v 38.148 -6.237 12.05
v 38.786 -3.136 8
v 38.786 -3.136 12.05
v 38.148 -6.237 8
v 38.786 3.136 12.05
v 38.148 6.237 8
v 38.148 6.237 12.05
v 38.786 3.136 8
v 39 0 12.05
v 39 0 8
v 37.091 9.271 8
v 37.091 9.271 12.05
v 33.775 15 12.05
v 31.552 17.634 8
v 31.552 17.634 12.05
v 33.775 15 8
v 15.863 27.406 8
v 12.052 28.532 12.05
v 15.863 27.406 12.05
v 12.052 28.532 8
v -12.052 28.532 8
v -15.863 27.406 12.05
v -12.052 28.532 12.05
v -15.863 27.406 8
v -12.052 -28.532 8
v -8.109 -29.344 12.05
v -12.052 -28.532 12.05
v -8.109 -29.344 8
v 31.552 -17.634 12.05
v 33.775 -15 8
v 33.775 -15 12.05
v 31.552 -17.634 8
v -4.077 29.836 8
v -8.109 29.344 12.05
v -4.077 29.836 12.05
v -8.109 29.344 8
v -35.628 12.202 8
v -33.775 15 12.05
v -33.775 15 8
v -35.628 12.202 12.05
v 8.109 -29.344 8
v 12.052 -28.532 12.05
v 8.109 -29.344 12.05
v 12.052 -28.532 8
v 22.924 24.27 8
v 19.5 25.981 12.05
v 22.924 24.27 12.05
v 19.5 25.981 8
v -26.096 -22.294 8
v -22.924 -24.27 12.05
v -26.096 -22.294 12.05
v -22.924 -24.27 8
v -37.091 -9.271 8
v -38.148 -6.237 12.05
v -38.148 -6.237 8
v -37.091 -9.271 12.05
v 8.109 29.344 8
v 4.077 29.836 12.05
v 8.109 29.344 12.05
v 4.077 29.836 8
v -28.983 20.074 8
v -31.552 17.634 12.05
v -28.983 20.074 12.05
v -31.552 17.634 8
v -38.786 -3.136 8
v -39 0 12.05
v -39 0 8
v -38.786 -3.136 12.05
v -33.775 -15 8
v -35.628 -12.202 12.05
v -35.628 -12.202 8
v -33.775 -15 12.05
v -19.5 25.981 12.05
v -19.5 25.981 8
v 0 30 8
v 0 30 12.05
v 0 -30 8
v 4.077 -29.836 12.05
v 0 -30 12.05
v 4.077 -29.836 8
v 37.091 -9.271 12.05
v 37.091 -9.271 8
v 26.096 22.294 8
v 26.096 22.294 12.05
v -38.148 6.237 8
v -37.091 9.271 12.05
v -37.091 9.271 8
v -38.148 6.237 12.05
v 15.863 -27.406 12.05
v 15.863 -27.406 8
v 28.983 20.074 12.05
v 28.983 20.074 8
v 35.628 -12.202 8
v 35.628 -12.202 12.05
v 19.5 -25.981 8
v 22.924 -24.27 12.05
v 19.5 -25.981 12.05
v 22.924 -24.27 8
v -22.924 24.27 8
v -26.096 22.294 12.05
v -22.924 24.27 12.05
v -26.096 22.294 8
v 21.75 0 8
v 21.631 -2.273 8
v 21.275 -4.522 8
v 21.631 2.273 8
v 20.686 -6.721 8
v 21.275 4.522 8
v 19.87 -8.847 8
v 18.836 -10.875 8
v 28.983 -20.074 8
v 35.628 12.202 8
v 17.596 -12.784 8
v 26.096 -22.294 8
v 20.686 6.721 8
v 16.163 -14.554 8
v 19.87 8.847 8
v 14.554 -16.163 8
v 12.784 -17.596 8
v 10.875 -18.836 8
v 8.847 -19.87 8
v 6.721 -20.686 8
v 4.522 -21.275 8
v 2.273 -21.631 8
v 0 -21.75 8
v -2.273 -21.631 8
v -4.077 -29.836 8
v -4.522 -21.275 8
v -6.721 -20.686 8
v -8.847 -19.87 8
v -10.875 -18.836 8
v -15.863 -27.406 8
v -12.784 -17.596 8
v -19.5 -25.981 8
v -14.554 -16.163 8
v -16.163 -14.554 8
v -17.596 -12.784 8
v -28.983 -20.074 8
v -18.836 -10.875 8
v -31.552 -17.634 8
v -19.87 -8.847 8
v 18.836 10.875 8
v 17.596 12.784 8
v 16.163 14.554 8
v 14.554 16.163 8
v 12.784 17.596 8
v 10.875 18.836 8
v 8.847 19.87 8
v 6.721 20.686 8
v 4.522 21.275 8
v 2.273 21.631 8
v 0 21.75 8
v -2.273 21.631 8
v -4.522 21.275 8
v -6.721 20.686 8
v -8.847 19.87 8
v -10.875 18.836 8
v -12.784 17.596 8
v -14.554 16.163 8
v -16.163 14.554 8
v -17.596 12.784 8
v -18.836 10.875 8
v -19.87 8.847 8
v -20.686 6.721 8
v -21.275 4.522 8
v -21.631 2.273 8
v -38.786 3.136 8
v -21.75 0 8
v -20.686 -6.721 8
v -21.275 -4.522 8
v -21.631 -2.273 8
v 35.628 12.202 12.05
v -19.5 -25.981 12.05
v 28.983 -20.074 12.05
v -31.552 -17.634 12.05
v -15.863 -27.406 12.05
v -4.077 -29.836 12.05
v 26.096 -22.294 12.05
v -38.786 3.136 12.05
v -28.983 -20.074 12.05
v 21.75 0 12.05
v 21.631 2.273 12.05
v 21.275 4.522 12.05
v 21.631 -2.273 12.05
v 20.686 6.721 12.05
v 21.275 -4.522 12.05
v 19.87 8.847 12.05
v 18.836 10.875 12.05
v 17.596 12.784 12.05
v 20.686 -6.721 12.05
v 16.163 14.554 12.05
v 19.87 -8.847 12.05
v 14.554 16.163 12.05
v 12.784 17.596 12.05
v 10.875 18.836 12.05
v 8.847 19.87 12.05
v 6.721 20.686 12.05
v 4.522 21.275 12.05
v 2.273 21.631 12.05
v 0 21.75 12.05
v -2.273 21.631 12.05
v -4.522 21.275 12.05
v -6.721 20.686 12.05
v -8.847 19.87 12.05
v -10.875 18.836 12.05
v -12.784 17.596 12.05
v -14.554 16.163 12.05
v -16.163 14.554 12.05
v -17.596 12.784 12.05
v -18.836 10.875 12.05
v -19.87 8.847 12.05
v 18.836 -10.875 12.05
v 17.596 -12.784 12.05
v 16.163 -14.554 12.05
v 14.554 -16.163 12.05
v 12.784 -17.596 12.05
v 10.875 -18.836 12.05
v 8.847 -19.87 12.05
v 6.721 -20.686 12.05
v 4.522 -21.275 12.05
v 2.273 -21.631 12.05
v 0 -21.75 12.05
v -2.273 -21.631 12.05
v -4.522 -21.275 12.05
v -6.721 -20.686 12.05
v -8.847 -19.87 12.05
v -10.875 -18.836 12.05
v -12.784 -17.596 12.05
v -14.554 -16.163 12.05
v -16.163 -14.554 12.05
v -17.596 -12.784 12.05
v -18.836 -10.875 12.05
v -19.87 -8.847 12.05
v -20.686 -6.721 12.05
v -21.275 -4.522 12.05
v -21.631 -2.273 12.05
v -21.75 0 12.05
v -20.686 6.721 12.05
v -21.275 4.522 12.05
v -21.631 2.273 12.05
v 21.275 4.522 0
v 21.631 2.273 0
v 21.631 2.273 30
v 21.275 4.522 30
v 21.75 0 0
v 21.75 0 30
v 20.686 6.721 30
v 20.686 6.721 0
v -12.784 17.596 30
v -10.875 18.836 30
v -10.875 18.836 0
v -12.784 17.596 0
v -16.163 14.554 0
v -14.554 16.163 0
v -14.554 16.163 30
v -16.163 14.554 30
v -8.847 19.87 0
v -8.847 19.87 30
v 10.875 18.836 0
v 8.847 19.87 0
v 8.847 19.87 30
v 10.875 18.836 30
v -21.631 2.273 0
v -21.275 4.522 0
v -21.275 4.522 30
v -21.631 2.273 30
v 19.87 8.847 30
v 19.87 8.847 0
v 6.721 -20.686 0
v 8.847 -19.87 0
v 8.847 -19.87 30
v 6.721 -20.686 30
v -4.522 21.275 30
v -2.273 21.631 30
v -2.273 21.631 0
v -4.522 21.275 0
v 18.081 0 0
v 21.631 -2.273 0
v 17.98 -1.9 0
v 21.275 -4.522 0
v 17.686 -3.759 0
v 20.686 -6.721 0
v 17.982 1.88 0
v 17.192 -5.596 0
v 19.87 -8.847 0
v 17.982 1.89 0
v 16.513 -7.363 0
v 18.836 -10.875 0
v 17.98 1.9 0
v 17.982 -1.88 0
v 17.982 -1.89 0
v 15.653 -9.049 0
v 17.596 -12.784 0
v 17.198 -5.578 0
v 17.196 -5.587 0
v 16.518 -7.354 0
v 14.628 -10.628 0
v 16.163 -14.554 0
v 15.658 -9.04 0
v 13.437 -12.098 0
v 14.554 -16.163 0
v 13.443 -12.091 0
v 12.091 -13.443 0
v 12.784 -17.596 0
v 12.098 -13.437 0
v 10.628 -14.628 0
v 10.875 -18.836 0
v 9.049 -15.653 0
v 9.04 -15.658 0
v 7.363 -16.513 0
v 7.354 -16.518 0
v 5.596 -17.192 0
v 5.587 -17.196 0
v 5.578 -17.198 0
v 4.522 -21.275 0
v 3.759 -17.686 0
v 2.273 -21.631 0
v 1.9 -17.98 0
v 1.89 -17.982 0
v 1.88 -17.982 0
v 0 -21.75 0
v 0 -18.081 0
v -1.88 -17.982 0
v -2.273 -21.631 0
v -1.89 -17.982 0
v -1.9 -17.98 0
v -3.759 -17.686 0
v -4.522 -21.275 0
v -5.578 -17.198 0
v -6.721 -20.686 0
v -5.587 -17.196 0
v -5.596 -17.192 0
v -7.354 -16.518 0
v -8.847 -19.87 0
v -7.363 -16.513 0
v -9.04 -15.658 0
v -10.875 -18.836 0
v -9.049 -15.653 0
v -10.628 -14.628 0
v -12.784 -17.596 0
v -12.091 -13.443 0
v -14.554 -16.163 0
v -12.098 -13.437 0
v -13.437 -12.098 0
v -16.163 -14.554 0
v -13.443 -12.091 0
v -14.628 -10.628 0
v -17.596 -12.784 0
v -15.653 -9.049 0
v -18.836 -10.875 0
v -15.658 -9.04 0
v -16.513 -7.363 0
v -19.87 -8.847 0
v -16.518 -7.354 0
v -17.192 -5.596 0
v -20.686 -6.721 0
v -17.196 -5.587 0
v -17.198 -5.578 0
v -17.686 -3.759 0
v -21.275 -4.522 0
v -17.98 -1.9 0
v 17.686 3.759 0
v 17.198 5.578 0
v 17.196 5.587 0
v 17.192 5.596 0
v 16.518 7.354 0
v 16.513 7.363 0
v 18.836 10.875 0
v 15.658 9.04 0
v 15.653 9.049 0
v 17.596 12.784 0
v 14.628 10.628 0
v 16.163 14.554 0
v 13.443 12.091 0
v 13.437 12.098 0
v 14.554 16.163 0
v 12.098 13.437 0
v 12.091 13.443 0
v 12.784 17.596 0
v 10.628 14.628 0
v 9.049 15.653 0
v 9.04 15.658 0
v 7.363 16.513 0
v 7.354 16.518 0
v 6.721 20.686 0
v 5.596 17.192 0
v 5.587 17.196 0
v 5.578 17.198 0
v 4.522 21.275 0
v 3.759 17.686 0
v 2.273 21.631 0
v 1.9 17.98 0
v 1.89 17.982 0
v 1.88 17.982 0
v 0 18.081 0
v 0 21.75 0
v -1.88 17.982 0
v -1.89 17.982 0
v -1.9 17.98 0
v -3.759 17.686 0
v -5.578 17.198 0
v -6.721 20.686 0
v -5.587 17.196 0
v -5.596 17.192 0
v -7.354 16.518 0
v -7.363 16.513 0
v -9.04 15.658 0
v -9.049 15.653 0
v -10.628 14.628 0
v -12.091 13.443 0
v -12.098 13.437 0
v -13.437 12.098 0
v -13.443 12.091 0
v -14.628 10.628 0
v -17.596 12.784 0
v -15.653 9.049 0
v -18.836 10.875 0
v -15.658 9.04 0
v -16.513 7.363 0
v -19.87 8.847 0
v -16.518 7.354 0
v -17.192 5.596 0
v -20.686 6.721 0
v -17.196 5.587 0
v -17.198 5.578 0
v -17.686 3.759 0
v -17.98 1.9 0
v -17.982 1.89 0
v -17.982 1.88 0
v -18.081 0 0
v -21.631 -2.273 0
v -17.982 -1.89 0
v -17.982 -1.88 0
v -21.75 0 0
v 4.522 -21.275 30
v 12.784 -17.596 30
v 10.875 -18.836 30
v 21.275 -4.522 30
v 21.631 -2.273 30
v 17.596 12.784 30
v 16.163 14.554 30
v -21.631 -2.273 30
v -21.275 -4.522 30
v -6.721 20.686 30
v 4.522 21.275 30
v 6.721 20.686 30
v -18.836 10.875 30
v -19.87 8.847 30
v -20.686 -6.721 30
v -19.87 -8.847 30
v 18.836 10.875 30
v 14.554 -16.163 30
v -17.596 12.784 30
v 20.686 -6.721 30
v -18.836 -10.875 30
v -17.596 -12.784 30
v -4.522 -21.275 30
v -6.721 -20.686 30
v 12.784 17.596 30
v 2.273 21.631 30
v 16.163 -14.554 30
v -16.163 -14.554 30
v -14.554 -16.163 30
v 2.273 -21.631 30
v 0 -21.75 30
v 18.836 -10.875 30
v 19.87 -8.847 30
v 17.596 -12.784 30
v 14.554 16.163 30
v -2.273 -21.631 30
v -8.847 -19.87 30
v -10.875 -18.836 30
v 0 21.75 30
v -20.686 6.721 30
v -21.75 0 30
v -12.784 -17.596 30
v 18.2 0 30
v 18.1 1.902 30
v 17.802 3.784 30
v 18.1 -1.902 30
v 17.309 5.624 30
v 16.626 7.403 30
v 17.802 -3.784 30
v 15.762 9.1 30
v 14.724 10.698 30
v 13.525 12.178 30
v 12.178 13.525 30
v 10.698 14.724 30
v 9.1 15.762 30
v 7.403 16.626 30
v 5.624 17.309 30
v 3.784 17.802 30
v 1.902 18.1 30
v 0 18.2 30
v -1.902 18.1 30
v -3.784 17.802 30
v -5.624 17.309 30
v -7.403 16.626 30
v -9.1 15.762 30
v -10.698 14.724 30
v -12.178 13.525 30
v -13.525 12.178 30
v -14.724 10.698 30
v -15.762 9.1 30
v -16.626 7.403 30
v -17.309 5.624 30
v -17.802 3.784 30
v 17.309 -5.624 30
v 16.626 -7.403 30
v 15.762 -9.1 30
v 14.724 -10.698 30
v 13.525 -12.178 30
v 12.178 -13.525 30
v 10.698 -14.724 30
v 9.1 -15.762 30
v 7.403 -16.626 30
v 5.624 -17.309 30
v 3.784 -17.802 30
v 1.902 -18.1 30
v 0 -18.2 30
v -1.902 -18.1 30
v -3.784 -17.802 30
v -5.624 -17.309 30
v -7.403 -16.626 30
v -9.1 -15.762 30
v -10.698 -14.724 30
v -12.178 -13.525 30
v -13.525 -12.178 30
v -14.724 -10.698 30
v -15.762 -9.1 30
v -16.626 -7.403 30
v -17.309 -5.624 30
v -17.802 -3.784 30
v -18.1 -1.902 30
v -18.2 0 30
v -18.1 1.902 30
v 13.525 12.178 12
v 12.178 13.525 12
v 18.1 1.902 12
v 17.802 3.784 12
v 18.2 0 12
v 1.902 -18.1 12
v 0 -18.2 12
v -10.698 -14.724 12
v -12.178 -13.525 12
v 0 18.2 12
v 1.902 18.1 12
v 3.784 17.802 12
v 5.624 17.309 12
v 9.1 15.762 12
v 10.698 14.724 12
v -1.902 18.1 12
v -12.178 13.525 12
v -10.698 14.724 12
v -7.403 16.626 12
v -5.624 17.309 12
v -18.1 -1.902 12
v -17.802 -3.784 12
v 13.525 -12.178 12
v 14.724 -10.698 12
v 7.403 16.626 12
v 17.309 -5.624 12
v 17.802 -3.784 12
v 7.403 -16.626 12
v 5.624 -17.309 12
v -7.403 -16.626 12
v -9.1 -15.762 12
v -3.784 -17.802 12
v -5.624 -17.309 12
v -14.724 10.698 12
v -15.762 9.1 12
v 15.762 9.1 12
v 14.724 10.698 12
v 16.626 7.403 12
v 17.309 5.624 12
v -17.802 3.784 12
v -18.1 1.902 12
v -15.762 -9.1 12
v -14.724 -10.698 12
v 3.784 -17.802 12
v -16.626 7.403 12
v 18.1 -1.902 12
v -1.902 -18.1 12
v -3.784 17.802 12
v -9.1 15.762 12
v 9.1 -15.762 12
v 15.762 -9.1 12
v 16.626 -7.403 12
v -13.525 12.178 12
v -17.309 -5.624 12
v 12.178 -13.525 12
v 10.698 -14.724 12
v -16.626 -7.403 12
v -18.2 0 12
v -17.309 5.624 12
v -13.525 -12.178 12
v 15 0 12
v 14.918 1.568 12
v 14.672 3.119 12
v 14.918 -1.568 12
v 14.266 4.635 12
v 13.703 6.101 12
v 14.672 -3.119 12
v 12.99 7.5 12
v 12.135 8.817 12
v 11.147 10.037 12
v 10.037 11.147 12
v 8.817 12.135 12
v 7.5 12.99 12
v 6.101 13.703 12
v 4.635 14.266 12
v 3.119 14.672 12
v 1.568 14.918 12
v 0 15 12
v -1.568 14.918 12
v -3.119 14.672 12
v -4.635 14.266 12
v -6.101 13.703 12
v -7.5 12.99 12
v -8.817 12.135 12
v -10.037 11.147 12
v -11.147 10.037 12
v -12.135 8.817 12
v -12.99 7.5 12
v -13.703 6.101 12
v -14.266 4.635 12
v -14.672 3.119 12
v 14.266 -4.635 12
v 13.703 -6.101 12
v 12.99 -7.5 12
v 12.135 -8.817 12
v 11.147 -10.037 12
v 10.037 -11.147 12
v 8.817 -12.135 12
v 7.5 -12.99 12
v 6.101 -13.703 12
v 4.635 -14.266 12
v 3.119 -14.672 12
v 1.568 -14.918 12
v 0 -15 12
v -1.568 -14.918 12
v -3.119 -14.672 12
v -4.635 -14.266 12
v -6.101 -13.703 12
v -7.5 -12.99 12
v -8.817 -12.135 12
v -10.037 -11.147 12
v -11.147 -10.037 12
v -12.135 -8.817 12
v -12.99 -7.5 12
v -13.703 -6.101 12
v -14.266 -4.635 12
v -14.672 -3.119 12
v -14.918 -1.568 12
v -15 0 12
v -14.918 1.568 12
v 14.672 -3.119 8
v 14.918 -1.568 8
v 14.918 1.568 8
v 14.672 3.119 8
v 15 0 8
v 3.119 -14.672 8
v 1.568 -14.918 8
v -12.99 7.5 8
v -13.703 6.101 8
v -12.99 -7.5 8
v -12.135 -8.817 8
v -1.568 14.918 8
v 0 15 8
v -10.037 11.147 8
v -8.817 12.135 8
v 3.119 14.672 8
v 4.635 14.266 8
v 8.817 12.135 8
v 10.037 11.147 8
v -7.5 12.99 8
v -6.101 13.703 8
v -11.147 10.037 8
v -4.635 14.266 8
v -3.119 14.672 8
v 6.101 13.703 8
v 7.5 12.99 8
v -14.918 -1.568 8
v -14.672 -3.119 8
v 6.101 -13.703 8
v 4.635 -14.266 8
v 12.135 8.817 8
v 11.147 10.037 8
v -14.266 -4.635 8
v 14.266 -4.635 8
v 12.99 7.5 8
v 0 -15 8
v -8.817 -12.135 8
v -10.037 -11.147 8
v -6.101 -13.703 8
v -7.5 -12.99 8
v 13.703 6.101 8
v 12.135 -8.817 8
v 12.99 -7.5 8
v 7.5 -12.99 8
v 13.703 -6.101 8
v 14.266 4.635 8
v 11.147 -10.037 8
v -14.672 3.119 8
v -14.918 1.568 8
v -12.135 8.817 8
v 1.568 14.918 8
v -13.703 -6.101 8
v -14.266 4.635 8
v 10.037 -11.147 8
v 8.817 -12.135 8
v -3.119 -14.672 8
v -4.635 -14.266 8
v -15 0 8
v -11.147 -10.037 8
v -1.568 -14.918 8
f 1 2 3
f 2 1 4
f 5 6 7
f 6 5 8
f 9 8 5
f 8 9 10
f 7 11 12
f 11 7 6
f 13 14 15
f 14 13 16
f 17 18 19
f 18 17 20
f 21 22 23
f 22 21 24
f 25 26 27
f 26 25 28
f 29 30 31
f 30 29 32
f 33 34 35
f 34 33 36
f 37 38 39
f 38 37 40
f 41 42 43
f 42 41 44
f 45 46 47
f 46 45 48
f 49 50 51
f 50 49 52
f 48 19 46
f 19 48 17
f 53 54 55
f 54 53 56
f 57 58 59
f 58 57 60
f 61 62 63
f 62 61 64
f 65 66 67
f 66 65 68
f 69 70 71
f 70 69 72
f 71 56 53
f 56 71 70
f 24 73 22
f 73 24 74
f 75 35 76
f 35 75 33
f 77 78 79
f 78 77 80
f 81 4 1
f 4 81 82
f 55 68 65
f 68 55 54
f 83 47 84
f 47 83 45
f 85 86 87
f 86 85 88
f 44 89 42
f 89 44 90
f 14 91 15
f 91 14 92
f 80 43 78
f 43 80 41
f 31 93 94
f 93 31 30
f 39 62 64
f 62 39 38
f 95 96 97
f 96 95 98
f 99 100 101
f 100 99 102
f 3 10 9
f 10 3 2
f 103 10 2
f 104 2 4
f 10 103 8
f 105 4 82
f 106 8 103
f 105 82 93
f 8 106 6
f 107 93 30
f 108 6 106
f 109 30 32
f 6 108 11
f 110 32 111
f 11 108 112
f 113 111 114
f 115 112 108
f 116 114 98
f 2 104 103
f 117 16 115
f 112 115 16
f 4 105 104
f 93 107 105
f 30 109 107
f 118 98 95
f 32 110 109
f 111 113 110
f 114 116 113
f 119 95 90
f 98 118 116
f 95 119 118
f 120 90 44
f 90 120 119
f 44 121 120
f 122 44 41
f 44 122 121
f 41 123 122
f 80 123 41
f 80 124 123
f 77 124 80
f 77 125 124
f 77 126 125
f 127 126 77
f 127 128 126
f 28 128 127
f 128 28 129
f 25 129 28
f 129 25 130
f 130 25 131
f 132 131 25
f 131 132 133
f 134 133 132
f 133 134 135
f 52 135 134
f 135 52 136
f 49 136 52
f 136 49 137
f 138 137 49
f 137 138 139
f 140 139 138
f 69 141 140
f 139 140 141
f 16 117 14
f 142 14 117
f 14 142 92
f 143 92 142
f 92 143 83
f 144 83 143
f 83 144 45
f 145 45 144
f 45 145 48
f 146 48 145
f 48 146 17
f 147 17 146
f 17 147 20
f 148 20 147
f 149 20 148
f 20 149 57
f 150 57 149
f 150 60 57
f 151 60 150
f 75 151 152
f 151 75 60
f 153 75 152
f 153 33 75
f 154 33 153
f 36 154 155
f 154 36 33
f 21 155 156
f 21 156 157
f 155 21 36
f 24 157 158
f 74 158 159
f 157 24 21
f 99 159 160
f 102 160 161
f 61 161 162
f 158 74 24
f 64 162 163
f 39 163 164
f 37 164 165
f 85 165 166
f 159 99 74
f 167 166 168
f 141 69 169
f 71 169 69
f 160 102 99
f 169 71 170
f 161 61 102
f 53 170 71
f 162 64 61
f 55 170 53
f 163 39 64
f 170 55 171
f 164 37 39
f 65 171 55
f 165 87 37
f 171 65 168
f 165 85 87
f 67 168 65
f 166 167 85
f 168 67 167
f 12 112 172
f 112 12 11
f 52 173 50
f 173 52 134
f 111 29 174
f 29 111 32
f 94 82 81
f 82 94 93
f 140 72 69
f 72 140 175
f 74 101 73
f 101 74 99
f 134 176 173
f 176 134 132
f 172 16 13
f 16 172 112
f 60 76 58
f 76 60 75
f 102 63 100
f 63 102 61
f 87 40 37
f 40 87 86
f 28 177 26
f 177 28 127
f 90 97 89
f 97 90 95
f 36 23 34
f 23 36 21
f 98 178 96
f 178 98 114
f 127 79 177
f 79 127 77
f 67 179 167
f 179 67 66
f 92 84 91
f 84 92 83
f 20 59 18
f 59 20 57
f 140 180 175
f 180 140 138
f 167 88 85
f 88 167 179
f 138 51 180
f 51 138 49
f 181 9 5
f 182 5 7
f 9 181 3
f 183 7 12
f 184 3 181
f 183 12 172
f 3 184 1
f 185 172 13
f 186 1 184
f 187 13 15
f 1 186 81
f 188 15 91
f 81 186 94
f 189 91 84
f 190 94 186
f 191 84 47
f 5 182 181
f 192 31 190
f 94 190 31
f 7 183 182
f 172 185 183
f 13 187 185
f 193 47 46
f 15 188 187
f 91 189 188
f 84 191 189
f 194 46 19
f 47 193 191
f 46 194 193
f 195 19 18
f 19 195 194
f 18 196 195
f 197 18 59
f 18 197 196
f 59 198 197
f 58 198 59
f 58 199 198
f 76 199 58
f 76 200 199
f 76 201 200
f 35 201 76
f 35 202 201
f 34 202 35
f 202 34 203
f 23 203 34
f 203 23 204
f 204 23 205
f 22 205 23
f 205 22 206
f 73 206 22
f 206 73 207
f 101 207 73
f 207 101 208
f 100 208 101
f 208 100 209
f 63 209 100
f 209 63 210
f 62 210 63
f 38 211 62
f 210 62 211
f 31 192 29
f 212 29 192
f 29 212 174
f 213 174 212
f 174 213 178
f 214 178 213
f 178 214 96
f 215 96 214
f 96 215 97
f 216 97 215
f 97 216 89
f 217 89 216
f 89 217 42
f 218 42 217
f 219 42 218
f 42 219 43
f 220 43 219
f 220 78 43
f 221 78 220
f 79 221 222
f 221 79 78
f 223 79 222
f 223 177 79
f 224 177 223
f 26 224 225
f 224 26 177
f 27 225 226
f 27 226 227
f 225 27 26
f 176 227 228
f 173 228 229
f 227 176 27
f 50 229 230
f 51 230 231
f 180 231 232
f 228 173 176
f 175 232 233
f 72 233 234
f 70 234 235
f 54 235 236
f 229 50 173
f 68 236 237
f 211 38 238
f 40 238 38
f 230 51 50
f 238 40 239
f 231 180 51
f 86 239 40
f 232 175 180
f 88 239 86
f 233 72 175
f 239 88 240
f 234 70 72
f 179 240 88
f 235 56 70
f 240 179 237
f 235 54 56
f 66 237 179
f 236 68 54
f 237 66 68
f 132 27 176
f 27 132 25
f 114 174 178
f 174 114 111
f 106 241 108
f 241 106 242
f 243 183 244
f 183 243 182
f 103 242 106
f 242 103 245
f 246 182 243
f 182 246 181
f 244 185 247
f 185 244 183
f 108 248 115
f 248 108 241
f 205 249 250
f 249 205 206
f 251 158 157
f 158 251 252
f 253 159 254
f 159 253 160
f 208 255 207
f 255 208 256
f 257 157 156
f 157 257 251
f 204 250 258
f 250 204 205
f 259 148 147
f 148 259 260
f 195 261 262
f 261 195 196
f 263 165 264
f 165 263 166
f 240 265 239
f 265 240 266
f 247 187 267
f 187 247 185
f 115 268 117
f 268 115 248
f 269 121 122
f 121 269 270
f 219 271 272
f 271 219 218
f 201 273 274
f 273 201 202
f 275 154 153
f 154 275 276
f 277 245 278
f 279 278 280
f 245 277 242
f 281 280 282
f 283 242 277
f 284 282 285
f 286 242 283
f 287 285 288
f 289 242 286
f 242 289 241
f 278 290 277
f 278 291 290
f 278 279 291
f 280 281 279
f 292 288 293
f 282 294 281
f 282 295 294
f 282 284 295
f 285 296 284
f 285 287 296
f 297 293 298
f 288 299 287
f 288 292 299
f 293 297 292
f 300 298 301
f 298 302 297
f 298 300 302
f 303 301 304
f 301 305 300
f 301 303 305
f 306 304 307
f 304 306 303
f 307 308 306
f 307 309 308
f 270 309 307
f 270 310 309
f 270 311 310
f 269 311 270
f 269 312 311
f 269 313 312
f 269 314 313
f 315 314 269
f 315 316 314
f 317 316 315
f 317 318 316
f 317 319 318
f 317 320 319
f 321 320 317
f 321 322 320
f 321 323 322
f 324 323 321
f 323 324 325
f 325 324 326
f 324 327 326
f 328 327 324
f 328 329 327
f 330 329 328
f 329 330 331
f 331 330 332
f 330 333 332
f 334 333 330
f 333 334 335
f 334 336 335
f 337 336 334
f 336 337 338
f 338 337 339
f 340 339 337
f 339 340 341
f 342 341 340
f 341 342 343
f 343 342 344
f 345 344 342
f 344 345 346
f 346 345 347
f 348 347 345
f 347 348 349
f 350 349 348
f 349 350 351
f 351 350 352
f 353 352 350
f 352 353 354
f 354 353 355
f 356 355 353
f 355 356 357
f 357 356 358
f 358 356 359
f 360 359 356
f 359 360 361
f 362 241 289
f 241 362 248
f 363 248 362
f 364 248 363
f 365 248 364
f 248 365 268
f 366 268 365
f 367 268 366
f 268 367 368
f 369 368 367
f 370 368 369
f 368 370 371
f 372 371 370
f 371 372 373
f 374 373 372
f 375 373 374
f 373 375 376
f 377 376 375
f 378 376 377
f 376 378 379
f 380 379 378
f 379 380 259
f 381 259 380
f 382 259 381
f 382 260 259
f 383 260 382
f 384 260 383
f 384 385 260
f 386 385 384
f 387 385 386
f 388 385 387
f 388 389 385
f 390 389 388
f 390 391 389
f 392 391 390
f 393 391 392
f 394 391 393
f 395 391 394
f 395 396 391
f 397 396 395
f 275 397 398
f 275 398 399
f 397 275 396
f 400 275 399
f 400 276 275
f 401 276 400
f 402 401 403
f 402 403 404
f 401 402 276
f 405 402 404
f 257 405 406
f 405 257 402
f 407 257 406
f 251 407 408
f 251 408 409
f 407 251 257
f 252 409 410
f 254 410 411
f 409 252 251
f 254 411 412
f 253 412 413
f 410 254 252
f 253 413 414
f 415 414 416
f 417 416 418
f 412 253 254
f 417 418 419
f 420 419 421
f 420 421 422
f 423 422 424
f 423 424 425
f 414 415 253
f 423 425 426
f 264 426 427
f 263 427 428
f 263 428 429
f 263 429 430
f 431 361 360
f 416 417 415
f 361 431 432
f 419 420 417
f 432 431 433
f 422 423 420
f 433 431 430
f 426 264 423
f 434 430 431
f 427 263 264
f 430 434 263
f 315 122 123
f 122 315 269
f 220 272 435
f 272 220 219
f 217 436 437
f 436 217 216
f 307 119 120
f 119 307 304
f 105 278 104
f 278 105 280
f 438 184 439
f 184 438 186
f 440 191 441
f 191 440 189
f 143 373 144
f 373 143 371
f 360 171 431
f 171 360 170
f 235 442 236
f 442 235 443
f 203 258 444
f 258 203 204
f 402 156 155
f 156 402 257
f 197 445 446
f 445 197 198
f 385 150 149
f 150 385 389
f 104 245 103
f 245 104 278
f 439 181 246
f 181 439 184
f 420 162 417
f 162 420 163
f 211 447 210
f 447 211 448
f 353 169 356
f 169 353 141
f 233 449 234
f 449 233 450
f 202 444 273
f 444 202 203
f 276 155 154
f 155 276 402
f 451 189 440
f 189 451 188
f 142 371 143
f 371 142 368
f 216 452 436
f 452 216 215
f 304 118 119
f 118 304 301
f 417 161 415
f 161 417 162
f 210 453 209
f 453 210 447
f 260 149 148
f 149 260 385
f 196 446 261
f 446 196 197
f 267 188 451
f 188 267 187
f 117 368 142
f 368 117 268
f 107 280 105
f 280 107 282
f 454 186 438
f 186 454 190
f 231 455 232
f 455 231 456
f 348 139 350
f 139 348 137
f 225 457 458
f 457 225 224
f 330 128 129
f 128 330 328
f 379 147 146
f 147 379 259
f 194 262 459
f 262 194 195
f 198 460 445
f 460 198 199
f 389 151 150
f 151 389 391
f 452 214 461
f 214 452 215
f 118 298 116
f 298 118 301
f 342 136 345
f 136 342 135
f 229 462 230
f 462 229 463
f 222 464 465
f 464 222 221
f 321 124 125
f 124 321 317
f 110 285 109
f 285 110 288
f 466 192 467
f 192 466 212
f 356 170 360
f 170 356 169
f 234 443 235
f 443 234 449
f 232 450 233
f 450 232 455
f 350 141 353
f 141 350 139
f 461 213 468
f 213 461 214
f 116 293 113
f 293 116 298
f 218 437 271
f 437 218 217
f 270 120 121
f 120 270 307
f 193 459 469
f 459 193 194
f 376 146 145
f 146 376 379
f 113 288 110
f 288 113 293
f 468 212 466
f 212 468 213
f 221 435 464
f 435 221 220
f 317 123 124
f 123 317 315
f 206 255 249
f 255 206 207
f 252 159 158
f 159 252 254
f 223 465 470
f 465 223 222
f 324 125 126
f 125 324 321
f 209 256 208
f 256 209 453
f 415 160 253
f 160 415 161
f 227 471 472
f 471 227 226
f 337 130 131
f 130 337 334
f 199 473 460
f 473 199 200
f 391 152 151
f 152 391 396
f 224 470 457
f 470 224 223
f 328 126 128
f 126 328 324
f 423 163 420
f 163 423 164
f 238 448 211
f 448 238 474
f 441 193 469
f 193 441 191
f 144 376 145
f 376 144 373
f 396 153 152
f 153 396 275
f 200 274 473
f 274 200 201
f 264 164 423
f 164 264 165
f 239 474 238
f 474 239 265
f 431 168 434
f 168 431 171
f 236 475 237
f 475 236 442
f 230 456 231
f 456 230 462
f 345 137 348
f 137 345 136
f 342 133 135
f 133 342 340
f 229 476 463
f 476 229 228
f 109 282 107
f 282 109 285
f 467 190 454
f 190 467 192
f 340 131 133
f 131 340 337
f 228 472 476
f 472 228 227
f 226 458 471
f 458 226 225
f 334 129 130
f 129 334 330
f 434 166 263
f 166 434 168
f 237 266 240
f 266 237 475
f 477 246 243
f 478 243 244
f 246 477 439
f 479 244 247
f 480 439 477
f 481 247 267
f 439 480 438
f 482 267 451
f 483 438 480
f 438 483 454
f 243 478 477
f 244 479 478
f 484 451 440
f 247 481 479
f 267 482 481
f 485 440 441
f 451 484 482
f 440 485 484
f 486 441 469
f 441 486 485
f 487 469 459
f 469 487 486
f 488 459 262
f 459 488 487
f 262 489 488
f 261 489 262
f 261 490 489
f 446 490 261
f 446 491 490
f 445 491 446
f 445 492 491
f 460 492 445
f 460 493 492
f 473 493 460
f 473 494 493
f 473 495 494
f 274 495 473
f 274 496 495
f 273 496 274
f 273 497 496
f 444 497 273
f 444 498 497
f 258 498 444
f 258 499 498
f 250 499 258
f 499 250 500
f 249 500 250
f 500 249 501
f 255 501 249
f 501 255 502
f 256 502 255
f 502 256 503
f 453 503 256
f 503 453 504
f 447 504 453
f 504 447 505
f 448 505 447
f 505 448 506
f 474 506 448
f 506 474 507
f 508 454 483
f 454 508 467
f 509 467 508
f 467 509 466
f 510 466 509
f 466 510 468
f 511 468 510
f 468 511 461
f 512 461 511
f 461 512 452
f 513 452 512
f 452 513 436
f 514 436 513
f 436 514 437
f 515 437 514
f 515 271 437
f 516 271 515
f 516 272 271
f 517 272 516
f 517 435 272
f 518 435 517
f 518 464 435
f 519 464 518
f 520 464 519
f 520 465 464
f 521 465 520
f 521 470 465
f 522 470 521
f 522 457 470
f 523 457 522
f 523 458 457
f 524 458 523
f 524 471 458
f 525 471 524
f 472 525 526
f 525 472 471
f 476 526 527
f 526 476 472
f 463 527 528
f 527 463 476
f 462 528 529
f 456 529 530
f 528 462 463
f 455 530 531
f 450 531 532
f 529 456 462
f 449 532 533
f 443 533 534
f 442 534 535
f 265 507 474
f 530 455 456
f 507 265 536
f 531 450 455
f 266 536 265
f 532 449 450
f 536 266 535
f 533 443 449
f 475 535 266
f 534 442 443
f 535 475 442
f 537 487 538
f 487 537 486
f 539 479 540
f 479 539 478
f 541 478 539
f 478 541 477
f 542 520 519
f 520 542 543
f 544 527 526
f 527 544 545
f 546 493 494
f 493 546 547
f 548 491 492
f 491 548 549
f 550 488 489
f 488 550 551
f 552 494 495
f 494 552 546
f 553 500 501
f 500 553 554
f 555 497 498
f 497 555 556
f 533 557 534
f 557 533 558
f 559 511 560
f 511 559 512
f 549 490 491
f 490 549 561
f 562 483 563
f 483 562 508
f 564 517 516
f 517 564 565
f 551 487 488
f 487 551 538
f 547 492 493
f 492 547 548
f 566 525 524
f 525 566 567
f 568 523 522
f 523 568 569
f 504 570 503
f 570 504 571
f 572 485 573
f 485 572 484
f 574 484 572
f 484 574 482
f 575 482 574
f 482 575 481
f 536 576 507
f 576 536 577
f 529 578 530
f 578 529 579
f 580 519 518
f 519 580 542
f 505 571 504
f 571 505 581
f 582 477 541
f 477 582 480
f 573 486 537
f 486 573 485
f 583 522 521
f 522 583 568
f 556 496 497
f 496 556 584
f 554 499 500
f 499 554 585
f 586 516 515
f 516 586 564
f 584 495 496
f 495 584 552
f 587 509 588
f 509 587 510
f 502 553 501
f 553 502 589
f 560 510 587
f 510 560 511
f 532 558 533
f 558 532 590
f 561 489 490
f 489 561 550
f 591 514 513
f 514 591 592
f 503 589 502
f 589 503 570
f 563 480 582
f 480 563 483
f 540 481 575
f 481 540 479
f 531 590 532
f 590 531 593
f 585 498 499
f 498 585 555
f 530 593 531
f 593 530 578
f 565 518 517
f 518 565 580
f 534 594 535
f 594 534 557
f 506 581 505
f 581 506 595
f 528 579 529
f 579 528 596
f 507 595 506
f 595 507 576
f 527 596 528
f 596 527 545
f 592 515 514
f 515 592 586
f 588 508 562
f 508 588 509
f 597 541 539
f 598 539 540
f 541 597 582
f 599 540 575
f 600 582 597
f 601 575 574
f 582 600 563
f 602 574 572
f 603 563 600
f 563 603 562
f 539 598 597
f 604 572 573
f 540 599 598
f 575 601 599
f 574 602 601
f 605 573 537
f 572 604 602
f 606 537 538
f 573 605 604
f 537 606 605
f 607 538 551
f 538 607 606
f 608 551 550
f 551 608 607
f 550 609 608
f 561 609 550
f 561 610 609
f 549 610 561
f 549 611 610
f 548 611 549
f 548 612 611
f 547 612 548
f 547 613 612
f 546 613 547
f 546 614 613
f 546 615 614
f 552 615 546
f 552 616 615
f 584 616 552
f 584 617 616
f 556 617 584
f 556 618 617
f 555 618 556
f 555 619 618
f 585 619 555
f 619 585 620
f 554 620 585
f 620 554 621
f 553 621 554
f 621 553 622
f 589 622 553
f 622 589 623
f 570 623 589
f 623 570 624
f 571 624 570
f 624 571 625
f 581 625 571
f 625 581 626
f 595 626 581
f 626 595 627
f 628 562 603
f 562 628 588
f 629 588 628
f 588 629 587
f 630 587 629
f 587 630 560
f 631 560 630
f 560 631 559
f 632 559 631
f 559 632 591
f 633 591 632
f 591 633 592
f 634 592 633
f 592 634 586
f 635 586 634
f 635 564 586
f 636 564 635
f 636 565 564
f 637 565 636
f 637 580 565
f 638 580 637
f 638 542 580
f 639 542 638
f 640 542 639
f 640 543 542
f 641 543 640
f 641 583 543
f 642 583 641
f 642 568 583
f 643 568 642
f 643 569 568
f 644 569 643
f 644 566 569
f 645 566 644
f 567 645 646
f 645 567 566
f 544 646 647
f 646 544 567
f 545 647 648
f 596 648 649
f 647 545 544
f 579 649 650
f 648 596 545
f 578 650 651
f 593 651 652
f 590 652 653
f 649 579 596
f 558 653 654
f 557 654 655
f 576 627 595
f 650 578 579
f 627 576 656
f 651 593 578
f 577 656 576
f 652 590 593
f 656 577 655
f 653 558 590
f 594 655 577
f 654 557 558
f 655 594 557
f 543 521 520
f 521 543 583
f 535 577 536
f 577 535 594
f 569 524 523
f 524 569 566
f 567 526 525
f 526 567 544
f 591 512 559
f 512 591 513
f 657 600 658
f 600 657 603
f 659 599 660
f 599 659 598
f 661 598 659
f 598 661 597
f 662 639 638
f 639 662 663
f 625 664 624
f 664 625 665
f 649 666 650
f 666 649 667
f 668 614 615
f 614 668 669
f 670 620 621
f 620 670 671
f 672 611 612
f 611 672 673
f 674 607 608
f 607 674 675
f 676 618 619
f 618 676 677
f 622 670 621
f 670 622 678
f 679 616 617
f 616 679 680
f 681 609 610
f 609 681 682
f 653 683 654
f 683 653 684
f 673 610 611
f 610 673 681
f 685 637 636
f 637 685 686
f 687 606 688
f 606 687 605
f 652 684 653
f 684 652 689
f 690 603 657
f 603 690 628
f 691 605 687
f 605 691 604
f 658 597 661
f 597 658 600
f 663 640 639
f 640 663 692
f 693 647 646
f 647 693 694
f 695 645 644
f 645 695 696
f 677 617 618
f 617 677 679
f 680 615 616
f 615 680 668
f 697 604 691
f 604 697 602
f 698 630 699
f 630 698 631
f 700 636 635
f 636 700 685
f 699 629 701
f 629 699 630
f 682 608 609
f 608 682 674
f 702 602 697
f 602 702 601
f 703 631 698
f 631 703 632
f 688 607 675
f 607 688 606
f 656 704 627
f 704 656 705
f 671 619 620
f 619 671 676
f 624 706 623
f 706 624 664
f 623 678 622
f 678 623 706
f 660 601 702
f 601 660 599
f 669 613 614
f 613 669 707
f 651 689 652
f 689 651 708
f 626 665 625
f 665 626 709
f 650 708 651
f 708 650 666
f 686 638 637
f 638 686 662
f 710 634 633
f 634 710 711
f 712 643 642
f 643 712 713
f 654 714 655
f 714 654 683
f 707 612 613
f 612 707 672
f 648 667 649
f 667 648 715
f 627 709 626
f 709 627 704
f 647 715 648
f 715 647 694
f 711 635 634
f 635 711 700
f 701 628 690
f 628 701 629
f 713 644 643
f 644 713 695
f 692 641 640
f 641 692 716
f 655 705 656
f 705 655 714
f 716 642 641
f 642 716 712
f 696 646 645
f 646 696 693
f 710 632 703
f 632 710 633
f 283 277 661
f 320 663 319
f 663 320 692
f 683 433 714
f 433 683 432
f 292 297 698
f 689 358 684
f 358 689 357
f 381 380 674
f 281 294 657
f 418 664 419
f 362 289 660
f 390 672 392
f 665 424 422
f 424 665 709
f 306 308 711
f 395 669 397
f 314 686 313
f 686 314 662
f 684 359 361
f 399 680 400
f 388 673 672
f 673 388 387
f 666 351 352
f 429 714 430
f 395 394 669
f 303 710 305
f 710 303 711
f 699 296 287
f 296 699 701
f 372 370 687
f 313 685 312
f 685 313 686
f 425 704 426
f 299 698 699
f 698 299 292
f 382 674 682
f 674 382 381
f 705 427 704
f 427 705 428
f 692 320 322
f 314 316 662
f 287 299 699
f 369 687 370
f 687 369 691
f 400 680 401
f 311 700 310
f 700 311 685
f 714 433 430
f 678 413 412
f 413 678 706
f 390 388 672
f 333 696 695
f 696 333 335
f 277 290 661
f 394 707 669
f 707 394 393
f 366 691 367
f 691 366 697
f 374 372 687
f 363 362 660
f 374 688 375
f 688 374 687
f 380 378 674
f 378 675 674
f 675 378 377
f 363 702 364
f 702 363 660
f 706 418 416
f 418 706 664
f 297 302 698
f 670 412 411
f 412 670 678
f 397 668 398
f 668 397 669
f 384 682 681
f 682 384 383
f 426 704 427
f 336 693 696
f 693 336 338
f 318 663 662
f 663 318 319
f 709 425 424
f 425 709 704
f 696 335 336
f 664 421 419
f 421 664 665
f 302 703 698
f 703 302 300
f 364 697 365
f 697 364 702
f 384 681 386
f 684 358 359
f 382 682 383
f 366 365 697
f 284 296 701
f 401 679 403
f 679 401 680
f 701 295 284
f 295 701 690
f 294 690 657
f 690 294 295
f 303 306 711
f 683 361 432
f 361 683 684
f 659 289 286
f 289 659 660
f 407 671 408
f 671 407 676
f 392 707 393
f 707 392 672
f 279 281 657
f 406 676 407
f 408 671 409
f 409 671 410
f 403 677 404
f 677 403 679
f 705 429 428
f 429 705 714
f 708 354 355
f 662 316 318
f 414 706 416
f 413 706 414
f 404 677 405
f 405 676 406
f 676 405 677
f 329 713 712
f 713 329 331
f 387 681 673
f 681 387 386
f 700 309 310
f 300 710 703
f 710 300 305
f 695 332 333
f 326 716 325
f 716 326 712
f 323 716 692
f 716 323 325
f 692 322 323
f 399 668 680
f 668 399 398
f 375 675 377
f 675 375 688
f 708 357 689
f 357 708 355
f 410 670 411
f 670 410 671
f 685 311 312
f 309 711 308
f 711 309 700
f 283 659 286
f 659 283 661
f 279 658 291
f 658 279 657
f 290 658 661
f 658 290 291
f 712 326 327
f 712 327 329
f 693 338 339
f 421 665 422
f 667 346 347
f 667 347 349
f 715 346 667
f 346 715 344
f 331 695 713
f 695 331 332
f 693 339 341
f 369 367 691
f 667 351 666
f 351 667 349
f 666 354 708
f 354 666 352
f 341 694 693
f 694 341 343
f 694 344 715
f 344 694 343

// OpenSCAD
// 1.75" hole (44mm)
$fn=60;

difference() {
   union() {
      translate([0,0,8]) scale([1.3,1,1]) cylinder(d=60,h=4.05);
      translate([0,0,0]) cylinder(d=43.5,h=30);
   }
   translate([0,0,12]) cylinder(d=36.4,h=31);
   translate([0,0,7.95]) cylinder(d=30,h=31);
   translate([0,0,-0.05]) cylinder(d2=30,d1=36.2,h=8.05);
}
